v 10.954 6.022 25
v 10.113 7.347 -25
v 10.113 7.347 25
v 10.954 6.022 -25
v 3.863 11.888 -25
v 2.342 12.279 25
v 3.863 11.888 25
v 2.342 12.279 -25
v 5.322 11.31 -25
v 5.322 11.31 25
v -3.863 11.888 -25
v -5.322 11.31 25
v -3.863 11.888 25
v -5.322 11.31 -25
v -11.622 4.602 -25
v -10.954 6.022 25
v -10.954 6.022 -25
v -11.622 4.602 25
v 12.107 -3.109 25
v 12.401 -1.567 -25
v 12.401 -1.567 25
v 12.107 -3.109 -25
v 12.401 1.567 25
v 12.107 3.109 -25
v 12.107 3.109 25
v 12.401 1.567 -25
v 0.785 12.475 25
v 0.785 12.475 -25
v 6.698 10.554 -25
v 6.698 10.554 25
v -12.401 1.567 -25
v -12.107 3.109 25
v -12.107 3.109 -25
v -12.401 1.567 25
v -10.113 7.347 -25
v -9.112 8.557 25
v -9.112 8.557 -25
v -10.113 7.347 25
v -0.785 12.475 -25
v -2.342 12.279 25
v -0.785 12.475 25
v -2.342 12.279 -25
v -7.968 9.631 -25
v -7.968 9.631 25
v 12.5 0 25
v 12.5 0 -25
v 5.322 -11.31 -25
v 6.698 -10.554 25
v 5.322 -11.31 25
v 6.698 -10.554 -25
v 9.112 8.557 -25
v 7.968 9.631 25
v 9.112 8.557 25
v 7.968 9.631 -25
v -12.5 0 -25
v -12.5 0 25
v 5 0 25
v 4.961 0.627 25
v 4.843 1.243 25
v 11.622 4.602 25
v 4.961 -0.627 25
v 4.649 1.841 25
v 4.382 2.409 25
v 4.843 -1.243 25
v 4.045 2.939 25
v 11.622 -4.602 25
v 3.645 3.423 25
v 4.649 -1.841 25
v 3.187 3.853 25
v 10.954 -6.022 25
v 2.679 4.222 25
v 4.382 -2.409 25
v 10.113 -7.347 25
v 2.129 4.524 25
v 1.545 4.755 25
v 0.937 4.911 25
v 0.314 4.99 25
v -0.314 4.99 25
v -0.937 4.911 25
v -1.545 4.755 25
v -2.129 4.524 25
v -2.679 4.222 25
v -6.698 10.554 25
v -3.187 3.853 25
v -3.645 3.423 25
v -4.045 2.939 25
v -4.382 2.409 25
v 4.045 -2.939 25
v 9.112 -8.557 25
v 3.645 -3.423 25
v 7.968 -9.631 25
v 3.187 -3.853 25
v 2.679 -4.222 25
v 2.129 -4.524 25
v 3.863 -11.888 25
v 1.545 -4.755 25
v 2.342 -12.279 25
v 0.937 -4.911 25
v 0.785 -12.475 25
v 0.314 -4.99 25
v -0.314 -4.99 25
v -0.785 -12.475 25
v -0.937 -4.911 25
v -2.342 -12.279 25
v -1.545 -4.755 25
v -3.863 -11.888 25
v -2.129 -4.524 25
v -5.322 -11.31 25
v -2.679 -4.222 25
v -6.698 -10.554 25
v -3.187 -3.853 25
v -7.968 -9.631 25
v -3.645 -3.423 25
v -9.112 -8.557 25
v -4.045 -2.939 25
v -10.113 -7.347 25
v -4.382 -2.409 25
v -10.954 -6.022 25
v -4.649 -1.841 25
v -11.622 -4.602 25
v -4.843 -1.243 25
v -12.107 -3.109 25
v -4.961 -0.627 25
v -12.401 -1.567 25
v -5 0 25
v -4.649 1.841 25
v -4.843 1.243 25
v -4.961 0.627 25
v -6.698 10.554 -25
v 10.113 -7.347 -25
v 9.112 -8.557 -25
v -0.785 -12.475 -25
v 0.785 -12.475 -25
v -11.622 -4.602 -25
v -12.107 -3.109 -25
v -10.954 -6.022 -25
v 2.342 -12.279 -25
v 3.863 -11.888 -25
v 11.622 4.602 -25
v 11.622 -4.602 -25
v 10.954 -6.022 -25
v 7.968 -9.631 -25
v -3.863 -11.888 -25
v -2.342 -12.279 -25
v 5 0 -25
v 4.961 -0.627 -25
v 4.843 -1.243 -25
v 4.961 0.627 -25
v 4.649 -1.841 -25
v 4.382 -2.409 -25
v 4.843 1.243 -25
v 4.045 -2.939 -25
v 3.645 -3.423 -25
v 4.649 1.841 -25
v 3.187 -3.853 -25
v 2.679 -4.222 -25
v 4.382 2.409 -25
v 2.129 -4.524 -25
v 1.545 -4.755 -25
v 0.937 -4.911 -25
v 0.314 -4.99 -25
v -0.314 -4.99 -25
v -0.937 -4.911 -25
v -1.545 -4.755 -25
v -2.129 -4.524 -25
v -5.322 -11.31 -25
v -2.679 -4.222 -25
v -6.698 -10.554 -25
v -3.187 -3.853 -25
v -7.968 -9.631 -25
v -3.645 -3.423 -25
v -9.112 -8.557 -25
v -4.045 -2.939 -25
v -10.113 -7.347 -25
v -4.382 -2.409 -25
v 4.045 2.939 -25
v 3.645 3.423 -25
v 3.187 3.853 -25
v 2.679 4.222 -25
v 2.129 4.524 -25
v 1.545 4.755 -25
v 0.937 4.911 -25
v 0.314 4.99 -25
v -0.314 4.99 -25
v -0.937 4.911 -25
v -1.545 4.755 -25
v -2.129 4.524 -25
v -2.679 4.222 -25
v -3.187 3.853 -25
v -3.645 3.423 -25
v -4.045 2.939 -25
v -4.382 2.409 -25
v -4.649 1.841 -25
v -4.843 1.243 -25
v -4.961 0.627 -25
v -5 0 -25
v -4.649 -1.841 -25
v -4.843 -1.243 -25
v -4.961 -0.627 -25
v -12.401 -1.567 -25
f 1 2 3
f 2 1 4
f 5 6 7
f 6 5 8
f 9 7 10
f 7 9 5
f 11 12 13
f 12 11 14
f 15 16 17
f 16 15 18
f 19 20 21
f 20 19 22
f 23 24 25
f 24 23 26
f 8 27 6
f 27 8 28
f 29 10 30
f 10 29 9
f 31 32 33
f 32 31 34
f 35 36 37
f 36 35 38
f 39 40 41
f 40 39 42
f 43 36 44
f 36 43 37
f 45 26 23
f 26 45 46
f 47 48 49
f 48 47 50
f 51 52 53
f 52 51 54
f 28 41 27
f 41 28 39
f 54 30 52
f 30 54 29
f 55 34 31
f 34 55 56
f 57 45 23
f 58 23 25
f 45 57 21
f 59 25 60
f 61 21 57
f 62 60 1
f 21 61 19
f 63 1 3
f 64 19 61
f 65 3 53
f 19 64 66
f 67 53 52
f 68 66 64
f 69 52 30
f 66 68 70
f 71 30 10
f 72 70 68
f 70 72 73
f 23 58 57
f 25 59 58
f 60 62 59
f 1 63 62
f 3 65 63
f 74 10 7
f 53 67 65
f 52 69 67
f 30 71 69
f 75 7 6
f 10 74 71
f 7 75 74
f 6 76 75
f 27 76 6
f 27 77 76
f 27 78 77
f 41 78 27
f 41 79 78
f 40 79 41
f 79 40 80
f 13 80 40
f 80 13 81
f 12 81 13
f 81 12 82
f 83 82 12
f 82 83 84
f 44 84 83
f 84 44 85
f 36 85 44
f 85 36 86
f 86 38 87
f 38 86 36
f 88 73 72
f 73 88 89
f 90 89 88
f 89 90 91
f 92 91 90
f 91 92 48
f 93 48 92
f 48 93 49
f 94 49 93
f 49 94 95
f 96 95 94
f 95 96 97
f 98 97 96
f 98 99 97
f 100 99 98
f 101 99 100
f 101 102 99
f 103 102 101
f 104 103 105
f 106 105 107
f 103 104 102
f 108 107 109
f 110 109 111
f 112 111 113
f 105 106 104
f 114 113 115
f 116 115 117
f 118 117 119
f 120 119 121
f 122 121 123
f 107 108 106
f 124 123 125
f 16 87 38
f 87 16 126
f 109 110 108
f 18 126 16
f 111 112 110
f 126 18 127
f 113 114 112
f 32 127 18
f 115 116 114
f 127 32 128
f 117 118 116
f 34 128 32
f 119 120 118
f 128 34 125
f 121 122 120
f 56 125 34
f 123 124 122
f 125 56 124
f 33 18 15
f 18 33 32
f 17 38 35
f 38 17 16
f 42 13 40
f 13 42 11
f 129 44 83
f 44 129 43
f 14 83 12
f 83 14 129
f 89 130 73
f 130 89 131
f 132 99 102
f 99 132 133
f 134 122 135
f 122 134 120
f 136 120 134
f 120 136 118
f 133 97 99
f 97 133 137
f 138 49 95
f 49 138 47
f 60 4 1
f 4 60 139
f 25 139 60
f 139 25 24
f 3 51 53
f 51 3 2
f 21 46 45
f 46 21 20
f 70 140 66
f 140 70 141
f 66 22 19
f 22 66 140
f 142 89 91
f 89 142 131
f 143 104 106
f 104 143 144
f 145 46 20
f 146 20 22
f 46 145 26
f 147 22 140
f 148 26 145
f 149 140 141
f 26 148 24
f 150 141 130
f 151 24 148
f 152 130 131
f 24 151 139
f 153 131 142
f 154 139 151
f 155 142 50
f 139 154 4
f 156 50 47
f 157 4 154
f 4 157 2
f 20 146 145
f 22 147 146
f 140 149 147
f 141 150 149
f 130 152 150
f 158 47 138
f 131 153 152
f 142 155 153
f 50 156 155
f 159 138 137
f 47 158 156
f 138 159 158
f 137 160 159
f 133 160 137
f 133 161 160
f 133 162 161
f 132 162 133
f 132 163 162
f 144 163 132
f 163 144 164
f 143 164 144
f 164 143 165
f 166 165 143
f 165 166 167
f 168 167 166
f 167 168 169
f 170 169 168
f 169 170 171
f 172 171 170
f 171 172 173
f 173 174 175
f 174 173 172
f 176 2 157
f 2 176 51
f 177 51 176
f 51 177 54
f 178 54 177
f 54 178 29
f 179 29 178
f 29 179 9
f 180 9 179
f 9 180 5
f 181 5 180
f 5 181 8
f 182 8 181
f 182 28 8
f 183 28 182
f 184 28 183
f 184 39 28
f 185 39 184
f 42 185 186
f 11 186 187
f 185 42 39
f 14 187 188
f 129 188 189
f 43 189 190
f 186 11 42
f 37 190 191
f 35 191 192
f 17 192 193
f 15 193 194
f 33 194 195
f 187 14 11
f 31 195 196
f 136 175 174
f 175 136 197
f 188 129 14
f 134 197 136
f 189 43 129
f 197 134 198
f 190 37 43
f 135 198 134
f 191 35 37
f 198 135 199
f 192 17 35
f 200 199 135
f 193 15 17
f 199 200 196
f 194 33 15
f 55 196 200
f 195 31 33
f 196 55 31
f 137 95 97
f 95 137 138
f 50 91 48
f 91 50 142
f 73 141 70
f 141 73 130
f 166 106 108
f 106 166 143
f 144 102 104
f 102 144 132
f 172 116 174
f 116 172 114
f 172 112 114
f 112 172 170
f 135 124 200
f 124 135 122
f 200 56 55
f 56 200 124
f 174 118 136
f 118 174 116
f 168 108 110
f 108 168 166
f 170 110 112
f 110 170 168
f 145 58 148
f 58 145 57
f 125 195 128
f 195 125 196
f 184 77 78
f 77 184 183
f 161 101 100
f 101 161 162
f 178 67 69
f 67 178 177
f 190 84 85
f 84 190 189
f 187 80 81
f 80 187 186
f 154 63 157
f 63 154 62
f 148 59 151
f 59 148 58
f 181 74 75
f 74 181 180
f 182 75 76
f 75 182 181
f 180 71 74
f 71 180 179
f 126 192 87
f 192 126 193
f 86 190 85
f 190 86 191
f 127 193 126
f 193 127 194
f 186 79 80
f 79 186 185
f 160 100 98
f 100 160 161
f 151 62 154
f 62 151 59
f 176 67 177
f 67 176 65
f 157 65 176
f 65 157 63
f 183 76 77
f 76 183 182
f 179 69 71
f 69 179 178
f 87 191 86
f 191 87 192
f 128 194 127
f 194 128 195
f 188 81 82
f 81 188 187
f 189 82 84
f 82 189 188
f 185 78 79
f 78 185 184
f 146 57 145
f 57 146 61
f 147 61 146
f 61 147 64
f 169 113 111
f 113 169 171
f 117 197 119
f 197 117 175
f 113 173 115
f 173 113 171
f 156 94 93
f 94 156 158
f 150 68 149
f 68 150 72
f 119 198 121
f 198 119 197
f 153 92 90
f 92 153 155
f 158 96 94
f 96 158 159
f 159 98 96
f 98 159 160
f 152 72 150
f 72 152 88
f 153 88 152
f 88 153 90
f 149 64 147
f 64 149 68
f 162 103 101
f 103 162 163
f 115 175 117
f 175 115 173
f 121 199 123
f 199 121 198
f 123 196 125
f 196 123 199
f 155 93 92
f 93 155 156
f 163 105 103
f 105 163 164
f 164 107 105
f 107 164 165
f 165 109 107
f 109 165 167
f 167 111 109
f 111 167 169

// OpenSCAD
$fn = 50;


difference() {
	union() {
		translate(v = [0, 0, -25.0000000000]) {
			cylinder(h = 50, r = 12.5000000000);
		}
	}
	union() {
		translate(v = [0, 0, -100.0000000000]) {
			cylinder(h = 200, r = 5);
		}
	}
}
